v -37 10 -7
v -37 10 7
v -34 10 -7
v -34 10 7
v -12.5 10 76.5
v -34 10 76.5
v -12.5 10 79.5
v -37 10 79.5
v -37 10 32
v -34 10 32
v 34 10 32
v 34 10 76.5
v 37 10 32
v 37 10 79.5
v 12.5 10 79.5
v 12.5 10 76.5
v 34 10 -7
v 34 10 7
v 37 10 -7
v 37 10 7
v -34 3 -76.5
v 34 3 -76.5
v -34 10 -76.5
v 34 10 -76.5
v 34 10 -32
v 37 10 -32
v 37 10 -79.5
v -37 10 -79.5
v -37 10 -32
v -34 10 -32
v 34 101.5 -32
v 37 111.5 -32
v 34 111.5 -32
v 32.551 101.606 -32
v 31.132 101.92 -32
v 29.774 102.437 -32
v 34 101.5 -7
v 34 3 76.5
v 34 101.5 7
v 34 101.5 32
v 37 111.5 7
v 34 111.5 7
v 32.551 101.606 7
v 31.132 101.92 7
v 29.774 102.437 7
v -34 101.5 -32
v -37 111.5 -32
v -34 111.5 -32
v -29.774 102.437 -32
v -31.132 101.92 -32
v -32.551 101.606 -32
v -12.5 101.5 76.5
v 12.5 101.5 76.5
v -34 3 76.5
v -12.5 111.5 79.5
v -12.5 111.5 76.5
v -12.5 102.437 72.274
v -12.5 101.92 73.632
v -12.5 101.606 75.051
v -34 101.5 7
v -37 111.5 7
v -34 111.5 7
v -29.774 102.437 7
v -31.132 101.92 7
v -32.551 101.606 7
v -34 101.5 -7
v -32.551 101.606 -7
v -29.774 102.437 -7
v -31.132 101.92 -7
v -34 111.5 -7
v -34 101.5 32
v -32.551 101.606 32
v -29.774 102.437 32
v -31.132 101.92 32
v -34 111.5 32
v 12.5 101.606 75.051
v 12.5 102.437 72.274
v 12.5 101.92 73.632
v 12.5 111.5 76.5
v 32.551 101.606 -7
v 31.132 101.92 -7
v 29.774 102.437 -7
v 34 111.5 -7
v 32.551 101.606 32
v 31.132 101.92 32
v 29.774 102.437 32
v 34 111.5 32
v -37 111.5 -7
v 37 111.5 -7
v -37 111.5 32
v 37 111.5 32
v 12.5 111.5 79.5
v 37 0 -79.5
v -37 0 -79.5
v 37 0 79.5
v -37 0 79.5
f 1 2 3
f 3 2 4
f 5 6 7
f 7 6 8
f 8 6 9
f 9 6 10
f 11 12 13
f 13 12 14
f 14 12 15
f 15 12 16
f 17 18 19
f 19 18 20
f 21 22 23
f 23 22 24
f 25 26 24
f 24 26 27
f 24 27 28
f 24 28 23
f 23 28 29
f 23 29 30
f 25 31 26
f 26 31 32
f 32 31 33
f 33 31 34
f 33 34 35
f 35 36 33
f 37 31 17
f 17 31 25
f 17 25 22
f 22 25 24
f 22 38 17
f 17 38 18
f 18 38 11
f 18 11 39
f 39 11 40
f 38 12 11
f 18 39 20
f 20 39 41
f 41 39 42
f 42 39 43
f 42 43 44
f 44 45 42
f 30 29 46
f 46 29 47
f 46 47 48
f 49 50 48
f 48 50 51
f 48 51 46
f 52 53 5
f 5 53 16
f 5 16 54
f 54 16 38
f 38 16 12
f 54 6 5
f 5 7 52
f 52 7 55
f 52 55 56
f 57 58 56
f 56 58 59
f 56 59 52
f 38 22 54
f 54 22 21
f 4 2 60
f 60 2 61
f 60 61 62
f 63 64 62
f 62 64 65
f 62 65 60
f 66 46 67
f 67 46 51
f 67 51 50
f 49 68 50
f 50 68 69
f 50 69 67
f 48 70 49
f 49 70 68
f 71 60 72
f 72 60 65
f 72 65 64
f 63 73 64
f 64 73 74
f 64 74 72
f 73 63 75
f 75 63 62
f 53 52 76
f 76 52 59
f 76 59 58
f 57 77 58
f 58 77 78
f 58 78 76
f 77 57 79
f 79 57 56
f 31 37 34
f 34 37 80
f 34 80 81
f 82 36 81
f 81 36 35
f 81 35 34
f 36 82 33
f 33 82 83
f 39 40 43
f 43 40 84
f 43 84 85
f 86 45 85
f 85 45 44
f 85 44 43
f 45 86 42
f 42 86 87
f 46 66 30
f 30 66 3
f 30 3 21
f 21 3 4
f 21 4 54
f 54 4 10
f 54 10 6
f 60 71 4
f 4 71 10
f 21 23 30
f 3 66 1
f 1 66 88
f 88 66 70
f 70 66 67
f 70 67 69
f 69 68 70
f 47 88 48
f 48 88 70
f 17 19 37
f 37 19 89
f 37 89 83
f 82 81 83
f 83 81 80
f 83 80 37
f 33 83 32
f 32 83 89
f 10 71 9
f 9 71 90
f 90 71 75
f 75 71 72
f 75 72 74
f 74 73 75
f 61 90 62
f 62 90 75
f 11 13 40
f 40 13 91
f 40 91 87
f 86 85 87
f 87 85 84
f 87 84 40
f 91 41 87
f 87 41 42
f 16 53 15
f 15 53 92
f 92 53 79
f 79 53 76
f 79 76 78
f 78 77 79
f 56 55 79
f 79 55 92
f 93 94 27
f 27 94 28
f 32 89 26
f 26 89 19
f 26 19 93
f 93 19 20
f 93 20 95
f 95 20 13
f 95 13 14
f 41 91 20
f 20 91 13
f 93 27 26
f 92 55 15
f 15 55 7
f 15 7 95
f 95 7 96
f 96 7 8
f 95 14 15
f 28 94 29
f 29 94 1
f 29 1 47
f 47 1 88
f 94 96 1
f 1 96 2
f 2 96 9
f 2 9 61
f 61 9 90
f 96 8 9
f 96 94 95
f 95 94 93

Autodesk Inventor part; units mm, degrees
ref_plane "YZ Plane" through (0, 0, 0) normal (1, 0, 0) x (0, 1, 0)
ref_plane "XZ Plane" through (0, 0, 0) normal (0, 1, 0) x (-1, 0, 0)
ref_plane "XY Plane" through (0, 0, 0) normal (0, 0, 1) x (1, 0, 0)
sketch "Sketch1" plane through (0, 0, 0) normal (0, 1, 0) x (-1, 0, 0)
  line L0 (-37, -79.5) -> (37, -79.5)
  line L1 (37, -79.5) -> (37, 79.5)
  line L2 (37, 79.5) -> (-37, 79.5)
  line L3 (-37, 79.5) -> (-37, -79.5)
  line L4 (-37, -79.5) -> (37, 79.5) construction
  line L5 (37, -79.5) -> (-37, 79.5) construction
  point P0 (0, 0)
  dimension "d0" = 74
  dimension "d1" = 159
extrude "Extrusion1" add sketch "Sketch1" along normal blind 3
sketch "Sketch2" plane through (0, 3, 0) normal (0, 1, 0) x (1, 0, 0)
  line L0 (34, 76.5) -> (-34, 76.5)
  line L1 (-34, 76.5) -> (-34, -76.5)
  line L2 (-34, -76.5) -> (34, -76.5)
  line L3 (34, -76.5) -> (34, 76.5)
  line L4 (34, 76.5) -> (-34, -76.5) construction
  line L5 (-34, 76.5) -> (34, -76.5) construction
  line L6 (-37, 79.5) -> (-37, -79.5) projected
  line L7 (-37, -79.5) -> (37, -79.5) projected
  line L8 (34, 7) -> (37, 7)
  line L9 (34, -7) -> (37, -7)
  line L10 (37, -79.5) -> (37, 79.5) projected
  line L11 (34, 32) -> (37, 32)
  line L12 (34, -32) -> (37, -32)
  line L13 (0, 0) -> (0, 8.1012)
  line L14 (-34, 7) -> (-37, 7)
  line L15 (-34, -7) -> (-37, -7)
  line L16 (-34, 32) -> (-37, 32)
  line L17 (-34, -32) -> (-37, -32)
  line L18 (-12.5, -79.5) -> (-12.5, -76.5)
  line L19 (12.5, -76.5) -> (12.5, -79.5)
  line L20 (-34, -32) -> (-34, -7)
  line L21 (-34, 7) -> (-34, -7)
  line L22 (-34, 32) -> (-34, 7)
  line L23 (-37, 7) -> (-37, 32)
  line L24 (-37, -7) -> (-37, -32)
  line L25 (34, -32) -> (34, -7)
  line L26 (37, -7) -> (37, -32)
  line L27 (34, 7) -> (34, 32)
  line L28 (37, 32) -> (37, 7)
  line L29 (12.5, -76.5) -> (-12.5, -76.5)
  line L30 (-12.5, -79.5) -> (12.5, -79.5)
  point P0 (35.5, -7)
  point P1 (34, 0)
  point P2 (35.5, 7)
  point P3 (35.5, 32)
  point P4 (35.5, -32)
  point P5 (0, -76.5)
  point P6 (12.5, -78)
  point P7 (-12.5, -78)
  dimension "d4" = 3
  dimension "d5" = 3
  dimension "d6" = 7
  dimension "d7" = 7
  dimension "d8" = 32
  dimension "d9" = 32
  dimension "d10" = 12.5
  dimension "d11" = 12.5
extrude "Extrusion2" add sketch "Sketch2" along normal blind 108.5 contours L11 L10 L8 L3 | L1 L14 L6 L16 | L9 L10 L12 L3 | L1 L17 L6 L15 | L19 L7 L18 L2
sketch "Sketch3" plane through (-34, 3, 32) normal (1, 0, 0) x (0, 0, -1)
  line L0 (25, 108.5) -> (0, 108.5) projected
  line L1 (0, 108.5) -> (25, 108.5)
  line L2 (25, 108.5) -> (25, 98.5)
  line L3 (25, 98.5) -> (0, 98.5)
  line L4 (0, 98.5) -> (0, 108.5)
  line L5 (39, 0) -> (39, 108.5) projected
  line L6 (39, 108.5) -> (64, 108.5)
  line L7 (64, 108.5) -> (64, 98.5)
  line L8 (64, 98.5) -> (39, 98.5)
  line L9 (39, 98.5) -> (39, 108.5)
  point P0 (32, -3)
  dimension "d14" = 25
  dimension "d15" = 10
  dimension "d16" = 25
  dimension "d17" = 10
sketch "Sketch4" plane through (12.5, 3, 76.5) normal (0, 0, -1) x (-1, 0, 0)
  line L0 (0, 108.5) -> (25, 108.5) projected
  line L1 (0, 108.5) -> (25, 108.5)
  line L2 (25, 108.5) -> (25, 98.5)
  line L3 (25, 98.5) -> (0, 98.5)
  line L4 (0, 98.5) -> (0, 108.5)
  point P0 (12.5, -3)
  dimension "d18" = 25
  dimension "d19" = 10
sketch "Sketch5" plane through (34, 3, 7) normal (-1, 0, 0) x (0, 0, 1)
  line L0 (-14, 108.5) -> (-39, 108.5) projected
  line L1 (-39, 108.5) -> (-14, 108.5)
  line L2 (-14, 108.5) -> (-14, 98.5)
  line L3 (-14, 98.5) -> (-39, 98.5)
  line L4 (-39, 98.5) -> (-39, 108.5)
  line L5 (0, 108.5) -> (25, 108.5)
  line L6 (25, 108.5) -> (25, 98.5)
  line L7 (25, 98.5) -> (0, 98.5)
  line L8 (0, 98.5) -> (0, 108.5)
  point P0 (-7, -3)
  dimension "d20" = 25
  dimension "d21" = 10
  dimension "d22" = 25
  dimension "d23" = 10
revolve "Revolution1" add sketch "Sketch5" angle 25 about axis through (34, 111.5, 7) along (0, 0, -1)
revolve "Revolution2" add sketch "Sketch4" angle 25 about axis through (12.5, 111.5, 76.5) along (1, 0, 0)
revolve "Revolution3" add sketch "Sketch3" angle 25 about axis through (-34, 111.5, 7) along (0, 0, 1)
sketch "Sketch6" plane through (0, 3, 0) normal (0, 1, 0) x (1, 0, 0)
  line L0 (34, -76.5) -> (-34, -76.5)
  line L1 (-34, -76.5) -> (-34, 76.5)
  line L2 (-34, 76.5) -> (34, 76.5)
  line L3 (34, 76.5) -> (34, -76.5)
  line L4 (12.5, -79.5) -> (37, -79.5) projected
  line L5 (37, -79.5) -> (37, -32) projected
  line L6 (-37, -32) -> (-37, -79.5) projected
  line L7 (37, 79.5) -> (-37, 79.5) projected
  line L8 (-37, 79.5) -> (-37, -79.5) projected
  line L9 (37, -79.5) -> (-37, -79.5)
  line L10 (-37, -79.5) -> (-37, 79.5)
  line L11 (-37, 79.5) -> (37, 79.5)
  line L12 (37, 79.5) -> (37, -79.5)
  point P0 (0, 0)
  dimension "d27" = 3
  dimension "d28" = 3
  dimension "d29" = 3
  dimension "d30" = 3
extrude "Extrusion3" add sketch "Sketch6" along normal blind 7
properties part number "battery pack holder"
